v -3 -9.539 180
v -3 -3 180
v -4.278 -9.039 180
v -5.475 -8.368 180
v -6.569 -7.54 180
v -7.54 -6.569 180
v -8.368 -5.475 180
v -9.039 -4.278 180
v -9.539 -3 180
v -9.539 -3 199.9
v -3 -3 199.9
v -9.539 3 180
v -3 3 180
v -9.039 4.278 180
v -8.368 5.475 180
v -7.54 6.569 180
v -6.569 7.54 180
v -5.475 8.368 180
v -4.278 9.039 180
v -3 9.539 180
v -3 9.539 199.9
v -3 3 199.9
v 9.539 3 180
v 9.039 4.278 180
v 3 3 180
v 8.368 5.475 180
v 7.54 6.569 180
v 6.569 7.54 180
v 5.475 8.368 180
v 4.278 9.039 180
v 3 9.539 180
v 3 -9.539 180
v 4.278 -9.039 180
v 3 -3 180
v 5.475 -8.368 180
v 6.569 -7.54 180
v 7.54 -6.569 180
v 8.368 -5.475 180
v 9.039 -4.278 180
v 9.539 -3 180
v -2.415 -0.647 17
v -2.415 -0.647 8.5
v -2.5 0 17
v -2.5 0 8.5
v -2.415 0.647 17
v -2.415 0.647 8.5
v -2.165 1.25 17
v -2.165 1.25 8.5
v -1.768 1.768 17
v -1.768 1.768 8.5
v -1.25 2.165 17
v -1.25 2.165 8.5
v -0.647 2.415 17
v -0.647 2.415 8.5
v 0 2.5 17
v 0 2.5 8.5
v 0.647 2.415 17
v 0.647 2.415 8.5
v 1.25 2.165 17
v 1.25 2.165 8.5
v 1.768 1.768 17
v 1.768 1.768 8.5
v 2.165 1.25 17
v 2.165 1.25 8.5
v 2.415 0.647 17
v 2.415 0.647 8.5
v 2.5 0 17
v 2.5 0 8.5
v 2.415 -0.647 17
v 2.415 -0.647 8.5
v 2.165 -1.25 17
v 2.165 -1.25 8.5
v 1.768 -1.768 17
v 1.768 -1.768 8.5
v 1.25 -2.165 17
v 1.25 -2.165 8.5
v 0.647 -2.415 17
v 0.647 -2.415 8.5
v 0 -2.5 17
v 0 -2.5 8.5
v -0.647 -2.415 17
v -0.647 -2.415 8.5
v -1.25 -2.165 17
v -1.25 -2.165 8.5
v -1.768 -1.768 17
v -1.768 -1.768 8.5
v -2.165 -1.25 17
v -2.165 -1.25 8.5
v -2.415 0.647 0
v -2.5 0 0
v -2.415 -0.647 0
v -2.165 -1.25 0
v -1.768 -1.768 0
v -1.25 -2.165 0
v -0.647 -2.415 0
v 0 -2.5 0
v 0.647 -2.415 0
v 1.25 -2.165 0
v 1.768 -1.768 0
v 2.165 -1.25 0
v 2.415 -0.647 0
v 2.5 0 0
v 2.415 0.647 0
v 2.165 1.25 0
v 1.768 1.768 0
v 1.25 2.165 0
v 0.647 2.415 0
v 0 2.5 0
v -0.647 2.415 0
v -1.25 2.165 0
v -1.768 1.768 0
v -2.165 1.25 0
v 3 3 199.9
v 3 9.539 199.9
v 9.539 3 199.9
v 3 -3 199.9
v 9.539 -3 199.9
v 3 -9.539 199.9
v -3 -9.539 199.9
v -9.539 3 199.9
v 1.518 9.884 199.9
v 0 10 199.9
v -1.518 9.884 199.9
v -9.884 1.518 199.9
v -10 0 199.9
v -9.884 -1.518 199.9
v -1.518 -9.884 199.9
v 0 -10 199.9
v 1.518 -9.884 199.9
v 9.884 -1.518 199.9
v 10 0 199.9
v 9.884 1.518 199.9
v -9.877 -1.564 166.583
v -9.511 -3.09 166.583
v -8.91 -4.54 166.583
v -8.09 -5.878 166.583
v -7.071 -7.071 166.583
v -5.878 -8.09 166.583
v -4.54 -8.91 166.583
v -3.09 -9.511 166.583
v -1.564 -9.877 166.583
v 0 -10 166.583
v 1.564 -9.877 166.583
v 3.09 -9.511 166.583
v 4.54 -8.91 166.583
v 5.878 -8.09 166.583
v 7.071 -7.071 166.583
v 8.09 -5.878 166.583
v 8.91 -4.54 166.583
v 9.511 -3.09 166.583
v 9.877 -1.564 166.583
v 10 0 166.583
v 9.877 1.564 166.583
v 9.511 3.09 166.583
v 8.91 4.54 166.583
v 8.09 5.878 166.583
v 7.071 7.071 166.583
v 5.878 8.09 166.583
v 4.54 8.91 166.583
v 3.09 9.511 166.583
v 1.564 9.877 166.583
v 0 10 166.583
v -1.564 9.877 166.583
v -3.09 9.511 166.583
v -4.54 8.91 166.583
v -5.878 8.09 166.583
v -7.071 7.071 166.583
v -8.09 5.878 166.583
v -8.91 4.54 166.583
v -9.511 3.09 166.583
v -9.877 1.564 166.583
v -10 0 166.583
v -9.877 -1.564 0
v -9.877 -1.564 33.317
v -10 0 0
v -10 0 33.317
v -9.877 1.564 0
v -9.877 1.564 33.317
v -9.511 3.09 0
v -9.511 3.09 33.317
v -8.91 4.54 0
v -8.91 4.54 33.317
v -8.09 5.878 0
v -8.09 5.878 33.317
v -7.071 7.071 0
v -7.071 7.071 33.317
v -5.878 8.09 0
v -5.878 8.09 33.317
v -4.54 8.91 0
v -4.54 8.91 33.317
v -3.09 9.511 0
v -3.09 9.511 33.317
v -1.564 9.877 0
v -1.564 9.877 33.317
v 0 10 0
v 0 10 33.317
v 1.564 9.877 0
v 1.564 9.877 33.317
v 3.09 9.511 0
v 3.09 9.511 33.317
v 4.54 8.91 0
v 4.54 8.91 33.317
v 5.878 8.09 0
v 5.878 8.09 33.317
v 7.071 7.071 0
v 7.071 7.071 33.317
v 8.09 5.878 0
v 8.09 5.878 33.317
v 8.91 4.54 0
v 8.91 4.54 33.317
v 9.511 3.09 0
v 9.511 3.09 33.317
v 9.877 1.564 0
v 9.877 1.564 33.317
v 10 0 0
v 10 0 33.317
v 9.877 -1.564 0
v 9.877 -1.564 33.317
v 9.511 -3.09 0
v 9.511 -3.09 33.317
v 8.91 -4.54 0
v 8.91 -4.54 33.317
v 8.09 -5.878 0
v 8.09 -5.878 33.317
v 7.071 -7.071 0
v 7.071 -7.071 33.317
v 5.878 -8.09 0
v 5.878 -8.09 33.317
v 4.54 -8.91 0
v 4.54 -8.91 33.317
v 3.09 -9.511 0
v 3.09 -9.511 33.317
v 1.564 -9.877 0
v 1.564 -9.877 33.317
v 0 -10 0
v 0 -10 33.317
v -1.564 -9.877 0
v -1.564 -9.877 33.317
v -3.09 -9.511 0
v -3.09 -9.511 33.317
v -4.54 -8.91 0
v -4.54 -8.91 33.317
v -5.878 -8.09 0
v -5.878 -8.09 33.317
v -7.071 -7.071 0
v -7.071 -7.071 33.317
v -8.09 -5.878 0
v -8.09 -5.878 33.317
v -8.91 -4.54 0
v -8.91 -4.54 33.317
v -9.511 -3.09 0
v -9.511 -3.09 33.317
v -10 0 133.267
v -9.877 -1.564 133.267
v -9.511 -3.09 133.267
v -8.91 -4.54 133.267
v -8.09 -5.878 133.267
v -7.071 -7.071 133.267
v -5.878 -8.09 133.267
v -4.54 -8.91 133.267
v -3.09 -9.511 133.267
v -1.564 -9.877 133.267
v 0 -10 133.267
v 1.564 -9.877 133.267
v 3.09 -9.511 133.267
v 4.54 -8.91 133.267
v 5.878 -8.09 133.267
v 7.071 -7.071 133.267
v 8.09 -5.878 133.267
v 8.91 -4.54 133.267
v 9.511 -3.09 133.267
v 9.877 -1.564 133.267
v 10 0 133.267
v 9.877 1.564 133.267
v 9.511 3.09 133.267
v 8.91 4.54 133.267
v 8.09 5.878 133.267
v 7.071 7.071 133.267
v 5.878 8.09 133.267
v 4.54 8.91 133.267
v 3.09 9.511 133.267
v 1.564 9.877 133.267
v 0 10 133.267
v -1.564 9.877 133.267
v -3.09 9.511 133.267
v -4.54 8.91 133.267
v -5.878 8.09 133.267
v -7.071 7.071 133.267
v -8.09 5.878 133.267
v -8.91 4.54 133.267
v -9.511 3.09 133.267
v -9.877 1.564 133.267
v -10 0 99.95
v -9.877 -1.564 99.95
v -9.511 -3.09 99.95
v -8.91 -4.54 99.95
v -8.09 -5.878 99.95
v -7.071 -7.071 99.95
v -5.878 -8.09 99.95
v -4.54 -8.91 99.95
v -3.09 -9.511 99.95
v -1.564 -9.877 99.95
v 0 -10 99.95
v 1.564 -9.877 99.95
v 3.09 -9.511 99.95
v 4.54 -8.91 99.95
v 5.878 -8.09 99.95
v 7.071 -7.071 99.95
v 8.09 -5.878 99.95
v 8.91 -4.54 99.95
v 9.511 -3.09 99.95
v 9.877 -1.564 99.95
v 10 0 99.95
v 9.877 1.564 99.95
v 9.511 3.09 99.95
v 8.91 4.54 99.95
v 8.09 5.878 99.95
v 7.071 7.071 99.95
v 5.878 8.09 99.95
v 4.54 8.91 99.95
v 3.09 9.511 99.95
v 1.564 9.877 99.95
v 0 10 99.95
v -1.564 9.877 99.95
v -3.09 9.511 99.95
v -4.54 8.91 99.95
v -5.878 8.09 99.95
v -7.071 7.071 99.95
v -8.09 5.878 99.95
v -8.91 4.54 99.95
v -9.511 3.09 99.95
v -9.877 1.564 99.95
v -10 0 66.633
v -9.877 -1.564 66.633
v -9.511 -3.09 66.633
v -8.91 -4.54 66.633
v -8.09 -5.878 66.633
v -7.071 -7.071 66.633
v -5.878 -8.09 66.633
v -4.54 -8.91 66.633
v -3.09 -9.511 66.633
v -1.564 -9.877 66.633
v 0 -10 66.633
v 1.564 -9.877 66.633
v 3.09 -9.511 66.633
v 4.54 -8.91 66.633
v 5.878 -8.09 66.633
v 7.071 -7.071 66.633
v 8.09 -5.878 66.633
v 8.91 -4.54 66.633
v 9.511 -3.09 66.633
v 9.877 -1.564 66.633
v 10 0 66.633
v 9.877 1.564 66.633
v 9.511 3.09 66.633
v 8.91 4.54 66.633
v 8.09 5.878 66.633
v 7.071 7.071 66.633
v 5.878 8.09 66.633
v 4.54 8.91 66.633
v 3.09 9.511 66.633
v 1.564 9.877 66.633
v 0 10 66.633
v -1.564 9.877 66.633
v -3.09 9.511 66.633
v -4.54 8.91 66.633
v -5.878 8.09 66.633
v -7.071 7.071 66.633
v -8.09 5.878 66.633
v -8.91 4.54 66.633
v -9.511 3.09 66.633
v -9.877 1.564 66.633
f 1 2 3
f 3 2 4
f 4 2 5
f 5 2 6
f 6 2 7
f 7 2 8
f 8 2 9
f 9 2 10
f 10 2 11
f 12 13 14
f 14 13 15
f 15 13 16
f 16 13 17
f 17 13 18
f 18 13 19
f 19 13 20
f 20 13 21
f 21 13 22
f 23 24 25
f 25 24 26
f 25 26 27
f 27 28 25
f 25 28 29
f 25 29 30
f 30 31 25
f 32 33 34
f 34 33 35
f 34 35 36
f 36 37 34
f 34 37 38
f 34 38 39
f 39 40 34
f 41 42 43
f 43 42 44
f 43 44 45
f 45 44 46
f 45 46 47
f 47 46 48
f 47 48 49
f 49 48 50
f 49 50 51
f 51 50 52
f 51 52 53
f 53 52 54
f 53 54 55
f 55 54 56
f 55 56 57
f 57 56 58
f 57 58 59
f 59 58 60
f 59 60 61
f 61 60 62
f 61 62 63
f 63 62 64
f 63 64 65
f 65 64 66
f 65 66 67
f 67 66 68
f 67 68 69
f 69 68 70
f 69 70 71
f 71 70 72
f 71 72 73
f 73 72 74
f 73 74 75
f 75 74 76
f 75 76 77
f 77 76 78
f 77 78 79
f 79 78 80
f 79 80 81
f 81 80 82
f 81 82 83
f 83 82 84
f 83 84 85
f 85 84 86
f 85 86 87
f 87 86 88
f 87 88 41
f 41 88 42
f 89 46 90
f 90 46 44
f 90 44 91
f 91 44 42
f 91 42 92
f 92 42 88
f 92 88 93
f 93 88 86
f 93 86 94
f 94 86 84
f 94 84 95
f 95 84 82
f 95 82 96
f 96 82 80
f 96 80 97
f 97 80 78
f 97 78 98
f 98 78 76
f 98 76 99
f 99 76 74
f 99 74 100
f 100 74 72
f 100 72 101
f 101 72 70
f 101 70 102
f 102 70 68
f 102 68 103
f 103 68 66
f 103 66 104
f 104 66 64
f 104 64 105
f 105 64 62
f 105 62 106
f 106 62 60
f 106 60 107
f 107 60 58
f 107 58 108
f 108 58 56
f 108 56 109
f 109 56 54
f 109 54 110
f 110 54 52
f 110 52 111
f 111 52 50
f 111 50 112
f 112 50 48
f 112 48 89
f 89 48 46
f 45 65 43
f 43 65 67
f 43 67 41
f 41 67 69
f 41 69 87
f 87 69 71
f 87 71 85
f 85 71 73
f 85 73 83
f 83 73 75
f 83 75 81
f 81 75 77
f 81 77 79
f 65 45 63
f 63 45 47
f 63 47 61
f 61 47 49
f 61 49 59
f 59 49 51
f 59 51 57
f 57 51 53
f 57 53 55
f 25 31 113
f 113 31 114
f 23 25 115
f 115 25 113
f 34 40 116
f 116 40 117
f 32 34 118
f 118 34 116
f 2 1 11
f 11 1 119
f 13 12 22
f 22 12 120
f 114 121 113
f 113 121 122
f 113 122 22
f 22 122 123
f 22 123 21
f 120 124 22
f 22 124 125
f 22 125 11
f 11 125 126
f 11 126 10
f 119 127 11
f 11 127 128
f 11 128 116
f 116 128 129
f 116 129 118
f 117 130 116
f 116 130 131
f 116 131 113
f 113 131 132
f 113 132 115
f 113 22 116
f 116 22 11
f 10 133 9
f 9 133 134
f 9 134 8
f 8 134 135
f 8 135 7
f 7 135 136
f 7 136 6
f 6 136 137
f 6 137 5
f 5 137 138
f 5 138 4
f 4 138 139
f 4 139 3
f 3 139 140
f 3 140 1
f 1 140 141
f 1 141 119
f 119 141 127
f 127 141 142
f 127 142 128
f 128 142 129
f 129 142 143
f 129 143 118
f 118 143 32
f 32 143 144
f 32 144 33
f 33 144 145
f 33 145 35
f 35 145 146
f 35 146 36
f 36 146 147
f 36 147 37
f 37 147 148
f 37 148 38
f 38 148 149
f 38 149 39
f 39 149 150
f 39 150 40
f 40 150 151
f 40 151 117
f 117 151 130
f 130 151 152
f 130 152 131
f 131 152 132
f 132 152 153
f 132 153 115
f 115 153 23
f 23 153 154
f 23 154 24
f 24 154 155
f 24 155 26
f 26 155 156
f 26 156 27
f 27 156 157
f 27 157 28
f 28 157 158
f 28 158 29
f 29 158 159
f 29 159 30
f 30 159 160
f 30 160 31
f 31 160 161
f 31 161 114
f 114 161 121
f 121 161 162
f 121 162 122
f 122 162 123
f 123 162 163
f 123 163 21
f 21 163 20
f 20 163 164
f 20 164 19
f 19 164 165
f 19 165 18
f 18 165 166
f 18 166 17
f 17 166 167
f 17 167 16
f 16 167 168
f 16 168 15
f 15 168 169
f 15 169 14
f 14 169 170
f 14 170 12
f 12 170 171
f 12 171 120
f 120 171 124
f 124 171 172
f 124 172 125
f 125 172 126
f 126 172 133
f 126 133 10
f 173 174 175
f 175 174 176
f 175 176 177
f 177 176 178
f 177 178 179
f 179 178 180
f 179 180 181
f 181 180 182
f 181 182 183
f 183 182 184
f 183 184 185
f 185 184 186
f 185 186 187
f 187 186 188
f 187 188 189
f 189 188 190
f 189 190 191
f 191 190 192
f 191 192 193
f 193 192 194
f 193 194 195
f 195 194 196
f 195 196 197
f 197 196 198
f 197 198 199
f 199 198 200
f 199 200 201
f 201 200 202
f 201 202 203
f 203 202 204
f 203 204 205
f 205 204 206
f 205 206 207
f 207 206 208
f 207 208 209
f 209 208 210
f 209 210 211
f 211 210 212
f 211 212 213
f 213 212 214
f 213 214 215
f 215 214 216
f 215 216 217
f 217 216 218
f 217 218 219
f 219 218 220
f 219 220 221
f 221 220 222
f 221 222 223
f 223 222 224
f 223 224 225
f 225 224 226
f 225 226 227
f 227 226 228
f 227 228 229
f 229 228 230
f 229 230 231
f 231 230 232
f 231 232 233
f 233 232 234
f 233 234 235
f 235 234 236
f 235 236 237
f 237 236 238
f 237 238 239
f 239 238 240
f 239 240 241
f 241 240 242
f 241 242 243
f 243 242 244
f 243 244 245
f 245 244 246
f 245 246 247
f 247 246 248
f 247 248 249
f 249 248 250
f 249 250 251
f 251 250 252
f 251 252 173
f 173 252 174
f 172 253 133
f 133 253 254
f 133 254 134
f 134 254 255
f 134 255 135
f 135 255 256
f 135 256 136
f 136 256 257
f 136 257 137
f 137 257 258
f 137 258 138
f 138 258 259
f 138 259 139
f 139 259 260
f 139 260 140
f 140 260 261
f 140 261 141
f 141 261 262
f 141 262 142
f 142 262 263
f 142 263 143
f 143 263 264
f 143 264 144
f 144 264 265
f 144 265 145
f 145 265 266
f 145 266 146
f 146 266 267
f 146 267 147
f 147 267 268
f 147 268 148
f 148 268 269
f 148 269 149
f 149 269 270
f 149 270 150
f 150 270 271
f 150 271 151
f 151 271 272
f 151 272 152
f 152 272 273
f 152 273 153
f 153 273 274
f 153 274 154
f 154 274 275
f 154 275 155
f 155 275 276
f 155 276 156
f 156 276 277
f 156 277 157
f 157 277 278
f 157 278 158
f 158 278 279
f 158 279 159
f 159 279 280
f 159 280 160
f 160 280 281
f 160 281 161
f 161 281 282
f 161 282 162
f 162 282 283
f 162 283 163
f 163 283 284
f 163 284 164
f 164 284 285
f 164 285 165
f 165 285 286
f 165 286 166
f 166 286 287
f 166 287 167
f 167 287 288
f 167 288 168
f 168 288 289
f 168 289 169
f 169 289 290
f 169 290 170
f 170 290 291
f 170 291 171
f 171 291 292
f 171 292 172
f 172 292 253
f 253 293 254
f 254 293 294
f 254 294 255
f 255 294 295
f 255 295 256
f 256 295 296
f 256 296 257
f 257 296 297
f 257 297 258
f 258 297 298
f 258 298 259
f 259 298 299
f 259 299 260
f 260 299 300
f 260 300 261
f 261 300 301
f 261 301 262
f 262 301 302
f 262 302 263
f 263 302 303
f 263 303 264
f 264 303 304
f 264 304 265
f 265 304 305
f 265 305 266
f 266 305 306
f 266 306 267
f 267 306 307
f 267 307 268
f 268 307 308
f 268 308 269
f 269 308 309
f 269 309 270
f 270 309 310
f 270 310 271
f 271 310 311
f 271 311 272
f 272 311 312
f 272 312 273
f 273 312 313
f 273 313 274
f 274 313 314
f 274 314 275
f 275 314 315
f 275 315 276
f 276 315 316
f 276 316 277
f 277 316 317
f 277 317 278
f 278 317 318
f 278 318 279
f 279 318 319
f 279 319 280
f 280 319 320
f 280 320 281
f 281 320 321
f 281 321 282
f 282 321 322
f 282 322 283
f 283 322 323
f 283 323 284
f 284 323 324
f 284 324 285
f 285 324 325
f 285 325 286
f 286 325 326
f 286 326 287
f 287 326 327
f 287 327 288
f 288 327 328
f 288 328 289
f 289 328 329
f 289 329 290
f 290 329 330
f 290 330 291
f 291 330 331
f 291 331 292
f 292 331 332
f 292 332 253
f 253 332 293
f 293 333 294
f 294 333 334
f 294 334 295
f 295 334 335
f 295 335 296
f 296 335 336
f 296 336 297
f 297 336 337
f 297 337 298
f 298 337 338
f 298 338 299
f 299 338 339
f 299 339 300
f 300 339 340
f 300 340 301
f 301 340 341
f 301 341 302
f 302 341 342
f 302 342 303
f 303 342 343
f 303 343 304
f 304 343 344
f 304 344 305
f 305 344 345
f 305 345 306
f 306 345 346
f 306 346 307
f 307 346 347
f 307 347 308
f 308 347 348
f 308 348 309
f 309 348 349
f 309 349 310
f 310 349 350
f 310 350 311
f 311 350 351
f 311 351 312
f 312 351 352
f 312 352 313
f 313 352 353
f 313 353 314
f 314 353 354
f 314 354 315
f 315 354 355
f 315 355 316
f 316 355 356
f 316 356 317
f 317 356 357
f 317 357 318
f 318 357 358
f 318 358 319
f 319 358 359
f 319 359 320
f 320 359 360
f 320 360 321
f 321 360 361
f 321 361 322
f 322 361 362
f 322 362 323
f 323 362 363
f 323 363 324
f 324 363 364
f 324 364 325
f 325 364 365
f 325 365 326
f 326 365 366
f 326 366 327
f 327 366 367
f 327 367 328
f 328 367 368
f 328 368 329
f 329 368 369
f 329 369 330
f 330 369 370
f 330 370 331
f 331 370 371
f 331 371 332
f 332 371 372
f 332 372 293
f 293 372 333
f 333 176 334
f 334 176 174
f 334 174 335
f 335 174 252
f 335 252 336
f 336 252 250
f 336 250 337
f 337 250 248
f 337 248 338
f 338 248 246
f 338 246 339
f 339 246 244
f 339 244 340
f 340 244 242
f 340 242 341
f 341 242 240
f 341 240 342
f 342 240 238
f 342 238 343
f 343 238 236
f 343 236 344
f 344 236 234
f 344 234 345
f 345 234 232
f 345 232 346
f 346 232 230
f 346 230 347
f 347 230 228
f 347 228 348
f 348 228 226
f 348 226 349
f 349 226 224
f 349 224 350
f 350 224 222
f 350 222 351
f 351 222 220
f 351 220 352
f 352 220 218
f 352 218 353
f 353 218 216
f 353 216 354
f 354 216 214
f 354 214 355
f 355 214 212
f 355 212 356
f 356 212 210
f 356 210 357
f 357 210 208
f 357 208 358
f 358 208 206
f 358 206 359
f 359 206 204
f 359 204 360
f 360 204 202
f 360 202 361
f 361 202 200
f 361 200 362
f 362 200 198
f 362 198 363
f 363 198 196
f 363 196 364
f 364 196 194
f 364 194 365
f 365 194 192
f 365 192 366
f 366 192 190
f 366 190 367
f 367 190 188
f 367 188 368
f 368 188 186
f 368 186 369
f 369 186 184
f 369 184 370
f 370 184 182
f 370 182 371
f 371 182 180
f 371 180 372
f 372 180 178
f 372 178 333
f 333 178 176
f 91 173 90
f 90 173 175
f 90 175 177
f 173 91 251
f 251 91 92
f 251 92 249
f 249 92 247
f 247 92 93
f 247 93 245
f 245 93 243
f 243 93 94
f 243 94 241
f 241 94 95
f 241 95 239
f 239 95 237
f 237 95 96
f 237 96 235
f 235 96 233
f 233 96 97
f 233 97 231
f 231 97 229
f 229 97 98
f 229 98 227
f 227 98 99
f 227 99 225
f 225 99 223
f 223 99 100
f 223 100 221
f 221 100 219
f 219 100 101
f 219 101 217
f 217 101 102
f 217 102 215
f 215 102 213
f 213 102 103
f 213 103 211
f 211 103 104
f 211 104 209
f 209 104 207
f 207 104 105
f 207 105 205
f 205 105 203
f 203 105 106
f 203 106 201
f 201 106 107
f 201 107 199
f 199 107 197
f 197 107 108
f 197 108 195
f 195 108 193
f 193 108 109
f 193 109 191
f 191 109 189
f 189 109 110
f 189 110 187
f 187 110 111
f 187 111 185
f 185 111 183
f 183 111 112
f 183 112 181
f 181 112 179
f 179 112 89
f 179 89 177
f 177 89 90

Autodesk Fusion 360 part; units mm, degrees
sketch "Sketch1" plane through (0, 0, 0) normal (0, 0, 1) x (1, 0, 0)
  circle A0 centre (0, 0) radius 10
  dimension "d1" = 20
extrude "Extrude1" add sketch "Sketch1" along normal blind 5
sketch "Sketch2" plane through (0, 0, 5) normal (0, 0, 1) x (-1, 0, 0)
  circle A0 centre (0, 0) radius 10
  line L0 (-3, -3) -> (-3, -9.5394)
  line L1 (3, 3) -> (3, 9.5394)
  line L2 (-3, 3) -> (-3, 9.5394)
  line L3 (3, -3) -> (3, -9.5394)
  line L4 (-3, 3) -> (-9.5394, 3)
  line L5 (3, 3) -> (9.5394, 3)
  line L6 (3, -3) -> (9.5394, -3)
  line L7 (-3, -3) -> (-9.5394, -3)
extrude "Extrude2" add sketch "Sketch2" along normal blind 194.9 contours A0 L0 L1 L2 L3 L4 L5 L6 L7
sketch "Sketch3" plane through (0, 0, 0) normal (0, 0, -1) x (1, 0, 0)
  circle A0 centre (0, 0) radius 10
  circle A1 centre (0, 0) radius 2.5
  dimension "d14" = 5
extrude "Extrude3" cut sketch "Sketch3" against normal blind 17 contours A1
extrude "Extrude4" add 4 faces at (5.7029, 5.7029, 5) (-5.7029, 5.7029, 5) (5.7029, -5.7029, 5) (-5.7029, -5.7029, 5) along direction (0, 0, 1) blind 175
equation "d12 = 196 mm - 5 mm + 3.9 mm"
equation "d17 = 195.00 mm - 20 mm"
